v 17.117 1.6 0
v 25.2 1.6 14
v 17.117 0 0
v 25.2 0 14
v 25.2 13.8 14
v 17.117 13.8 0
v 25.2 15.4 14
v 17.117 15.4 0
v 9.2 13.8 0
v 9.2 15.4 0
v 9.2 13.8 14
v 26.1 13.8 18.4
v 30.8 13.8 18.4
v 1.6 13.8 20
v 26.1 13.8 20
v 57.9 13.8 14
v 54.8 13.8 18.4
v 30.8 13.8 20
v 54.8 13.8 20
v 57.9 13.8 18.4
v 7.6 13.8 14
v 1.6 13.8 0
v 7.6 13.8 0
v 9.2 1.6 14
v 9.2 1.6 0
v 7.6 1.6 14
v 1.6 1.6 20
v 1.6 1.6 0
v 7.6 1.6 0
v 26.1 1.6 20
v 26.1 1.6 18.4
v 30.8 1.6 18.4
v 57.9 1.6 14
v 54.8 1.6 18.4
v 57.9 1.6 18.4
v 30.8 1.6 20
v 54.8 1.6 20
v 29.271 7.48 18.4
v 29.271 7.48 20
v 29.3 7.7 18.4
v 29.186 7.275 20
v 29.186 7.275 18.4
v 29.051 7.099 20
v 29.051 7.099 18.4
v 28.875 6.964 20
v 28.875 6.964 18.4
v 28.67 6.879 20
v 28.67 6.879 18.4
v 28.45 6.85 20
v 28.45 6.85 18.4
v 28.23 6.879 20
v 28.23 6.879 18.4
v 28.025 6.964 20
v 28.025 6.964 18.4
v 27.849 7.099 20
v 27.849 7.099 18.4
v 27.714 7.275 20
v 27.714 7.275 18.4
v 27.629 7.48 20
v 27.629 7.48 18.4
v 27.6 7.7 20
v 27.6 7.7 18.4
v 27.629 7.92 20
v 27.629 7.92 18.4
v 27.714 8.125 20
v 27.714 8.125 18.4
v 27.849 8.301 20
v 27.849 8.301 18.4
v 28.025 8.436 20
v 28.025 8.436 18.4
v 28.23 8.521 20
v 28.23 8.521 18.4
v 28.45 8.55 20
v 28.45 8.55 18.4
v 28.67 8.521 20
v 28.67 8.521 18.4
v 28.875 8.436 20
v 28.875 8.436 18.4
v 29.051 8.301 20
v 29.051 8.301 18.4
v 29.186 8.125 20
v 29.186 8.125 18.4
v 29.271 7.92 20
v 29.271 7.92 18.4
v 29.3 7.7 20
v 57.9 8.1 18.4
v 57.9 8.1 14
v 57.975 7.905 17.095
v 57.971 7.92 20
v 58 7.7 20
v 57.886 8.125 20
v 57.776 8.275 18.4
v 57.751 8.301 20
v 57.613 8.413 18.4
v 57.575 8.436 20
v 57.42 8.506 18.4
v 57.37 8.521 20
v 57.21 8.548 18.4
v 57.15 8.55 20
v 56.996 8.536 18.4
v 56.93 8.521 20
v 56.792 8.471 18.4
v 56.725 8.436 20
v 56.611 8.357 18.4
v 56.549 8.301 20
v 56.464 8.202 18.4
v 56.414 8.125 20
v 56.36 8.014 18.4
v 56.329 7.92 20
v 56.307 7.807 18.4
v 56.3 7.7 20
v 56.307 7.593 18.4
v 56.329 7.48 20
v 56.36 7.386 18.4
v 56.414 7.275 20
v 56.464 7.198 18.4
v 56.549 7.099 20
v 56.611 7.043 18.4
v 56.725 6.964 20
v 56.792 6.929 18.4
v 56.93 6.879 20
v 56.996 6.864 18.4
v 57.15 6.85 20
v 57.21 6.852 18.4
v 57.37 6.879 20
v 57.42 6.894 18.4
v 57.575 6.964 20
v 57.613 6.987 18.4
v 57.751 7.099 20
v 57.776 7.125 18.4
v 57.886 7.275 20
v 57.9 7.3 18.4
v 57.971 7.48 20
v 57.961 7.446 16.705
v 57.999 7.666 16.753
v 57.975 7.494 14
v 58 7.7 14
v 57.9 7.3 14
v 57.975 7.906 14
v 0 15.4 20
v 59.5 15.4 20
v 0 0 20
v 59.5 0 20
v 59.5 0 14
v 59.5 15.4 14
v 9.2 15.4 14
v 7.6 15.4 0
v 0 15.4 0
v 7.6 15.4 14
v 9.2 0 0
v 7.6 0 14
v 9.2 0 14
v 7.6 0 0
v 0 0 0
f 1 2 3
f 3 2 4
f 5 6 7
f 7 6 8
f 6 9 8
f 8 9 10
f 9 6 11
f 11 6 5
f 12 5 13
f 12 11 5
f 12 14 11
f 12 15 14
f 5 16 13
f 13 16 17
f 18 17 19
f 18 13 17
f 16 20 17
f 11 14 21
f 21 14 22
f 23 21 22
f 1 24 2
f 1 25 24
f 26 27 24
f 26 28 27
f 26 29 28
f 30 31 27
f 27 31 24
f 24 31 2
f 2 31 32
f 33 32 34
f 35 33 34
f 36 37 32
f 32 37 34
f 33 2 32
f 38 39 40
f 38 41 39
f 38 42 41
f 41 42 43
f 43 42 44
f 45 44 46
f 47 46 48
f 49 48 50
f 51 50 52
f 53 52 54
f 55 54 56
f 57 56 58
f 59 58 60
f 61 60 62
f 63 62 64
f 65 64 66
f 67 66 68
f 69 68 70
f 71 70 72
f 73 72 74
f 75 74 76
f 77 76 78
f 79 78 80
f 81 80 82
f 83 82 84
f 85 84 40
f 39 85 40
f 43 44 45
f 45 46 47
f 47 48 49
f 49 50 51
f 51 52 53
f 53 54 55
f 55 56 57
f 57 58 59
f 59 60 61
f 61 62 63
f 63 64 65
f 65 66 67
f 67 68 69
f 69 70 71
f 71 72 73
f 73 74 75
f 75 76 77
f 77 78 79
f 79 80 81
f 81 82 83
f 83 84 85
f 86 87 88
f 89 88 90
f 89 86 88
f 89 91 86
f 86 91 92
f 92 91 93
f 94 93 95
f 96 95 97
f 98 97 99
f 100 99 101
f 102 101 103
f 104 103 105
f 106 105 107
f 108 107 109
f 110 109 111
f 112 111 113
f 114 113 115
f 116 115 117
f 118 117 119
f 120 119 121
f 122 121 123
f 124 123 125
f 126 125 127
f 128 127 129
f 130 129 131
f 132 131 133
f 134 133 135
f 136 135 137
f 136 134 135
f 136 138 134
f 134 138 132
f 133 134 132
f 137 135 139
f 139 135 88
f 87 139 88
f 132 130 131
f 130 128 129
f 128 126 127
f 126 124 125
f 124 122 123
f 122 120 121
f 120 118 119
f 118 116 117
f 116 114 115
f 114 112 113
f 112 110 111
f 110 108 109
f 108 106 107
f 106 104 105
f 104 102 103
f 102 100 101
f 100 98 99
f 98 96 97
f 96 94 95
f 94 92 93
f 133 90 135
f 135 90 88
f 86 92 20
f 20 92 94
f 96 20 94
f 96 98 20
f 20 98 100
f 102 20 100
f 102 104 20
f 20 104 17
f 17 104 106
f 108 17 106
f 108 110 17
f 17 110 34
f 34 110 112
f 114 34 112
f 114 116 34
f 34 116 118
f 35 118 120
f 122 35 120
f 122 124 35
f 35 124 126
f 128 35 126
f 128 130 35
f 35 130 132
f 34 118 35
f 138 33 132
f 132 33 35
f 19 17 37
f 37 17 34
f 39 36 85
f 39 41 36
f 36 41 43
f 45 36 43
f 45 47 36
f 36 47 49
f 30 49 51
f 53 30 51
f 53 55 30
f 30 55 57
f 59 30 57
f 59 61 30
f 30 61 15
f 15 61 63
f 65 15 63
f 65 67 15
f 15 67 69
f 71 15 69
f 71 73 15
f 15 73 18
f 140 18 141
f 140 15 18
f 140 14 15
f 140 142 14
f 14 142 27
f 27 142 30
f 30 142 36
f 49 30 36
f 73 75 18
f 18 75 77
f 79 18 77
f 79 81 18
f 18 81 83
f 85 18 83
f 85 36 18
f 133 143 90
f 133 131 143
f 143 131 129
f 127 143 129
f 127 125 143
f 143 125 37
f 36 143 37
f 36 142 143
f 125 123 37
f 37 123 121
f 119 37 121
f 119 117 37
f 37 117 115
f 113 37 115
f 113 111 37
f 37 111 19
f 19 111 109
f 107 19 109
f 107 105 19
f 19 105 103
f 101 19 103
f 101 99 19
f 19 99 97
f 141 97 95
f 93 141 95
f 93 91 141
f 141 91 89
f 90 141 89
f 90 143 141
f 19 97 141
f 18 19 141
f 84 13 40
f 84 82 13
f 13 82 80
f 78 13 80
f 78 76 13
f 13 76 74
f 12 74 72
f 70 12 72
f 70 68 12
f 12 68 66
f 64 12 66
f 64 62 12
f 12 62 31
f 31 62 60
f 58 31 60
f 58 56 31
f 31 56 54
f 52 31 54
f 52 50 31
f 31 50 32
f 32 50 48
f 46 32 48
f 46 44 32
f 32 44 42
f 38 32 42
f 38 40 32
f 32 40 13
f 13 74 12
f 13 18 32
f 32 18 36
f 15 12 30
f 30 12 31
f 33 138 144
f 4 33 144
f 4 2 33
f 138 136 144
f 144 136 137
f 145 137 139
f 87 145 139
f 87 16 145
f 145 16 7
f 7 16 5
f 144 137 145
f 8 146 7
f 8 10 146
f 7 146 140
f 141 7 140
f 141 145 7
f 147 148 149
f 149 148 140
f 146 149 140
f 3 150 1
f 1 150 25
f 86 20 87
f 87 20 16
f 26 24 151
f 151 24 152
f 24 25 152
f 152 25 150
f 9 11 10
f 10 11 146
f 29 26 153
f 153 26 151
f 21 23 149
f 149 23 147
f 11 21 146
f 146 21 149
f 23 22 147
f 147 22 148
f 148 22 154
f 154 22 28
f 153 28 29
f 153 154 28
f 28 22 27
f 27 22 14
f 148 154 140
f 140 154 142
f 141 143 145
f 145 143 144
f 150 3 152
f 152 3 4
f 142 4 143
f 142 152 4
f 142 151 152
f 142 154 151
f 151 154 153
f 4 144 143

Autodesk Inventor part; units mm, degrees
ref_plane "YZ Plane" through (0, 0, 0) normal (1, 0, 0) x (0, 1, 0)
ref_plane "XZ Plane" through (0, 0, 0) normal (0, 1, 0) x (-1, 0, 0)
ref_plane "XY Plane" through (0, 0, 0) normal (0, 0, 1) x (1, 0, 0)
sketch "Sketch1" plane through (0, 0, 0) normal (0, 0, 1) x (1, 0, 0)
  line L0 (0, 0) -> (59.5, 0)
  line L1 (59.5, 0) -> (59.5, 15.4)
  line L2 (59.5, 15.4) -> (0, 15.4)
  line L3 (0, 15.4) -> (0, 0)
  line L4 (1.6, 13.8) -> (57.9, 13.8)
  line L5 (57.9, 13.8) -> (57.9, 1.6)
  line L6 (57.9, 1.6) -> (1.6, 1.6)
  line L7 (1.6, 1.6) -> (1.6, 13.8)
  dimension "d0" = 59.5
  dimension "d1" = 15.4
  dimension "d2" = 1.6
extrude "Extrusion1" add sketch "Sketch1" along normal blind 20
sketch "Sketch2" plane through (0, 0, 0) normal (0, -1, 0) x (1, 0, 0)
  line L0 (1.6, 0) -> (57.9, 0) projected
  line L1 (7.6, 0) -> (9.2, 0)
  line L2 (9.2, 0) -> (9.2, 14)
  line L3 (9.2, 14) -> (7.6, 14)
  line L4 (7.6, 14) -> (7.6, 0)
  line L5 (0, 0) -> (0, 20) projected
  dimension "d5" = 1.6
  dimension "d6" = 14
  dimension "d7" = 7.6
extrude "Extrusion2" cut sketch "Sketch2" against normal up to surface (15.4 mm away)
sketch "Sketch3" plane through (0, 0, 20) normal (0, -1, 0) x (1, 0, 0)
  line L0 (9.2, -6) -> (9.2, -20) projected
  line L1 (9.2, -20) -> (59.5, -20) projected
  line L2 (59.5, -20) -> (59.5, 0) projected
  line L3 (0, 0) -> (59.5, 0) projected
  line L4 (0, -20) -> (0, 0) projected
  line L5 (0, -20) -> (7.6, -20) projected
  line L6 (7.6, -20) -> (7.6, -6) projected
  line L7 (7.6, -6) -> (9.2, -6) projected
  line L8 (57.9, -20) -> (9.2, -20) projected
  line L9 (25.2, -20) -> (59.5, -20)
  line L10 (59.5, -20) -> (59.5, -6)
  line L11 (59.5, -6) -> (25.2, -6)
  line L12 (25.2, -6) -> (25.2, -20)
  dimension "d10" = 14
  dimension "d11" = 16
extrude "Extrusion3" cut sketch "Sketch3" against normal up to surface (15.4 mm away) contours L12 L11 L2 L1
sketch "Sketch4" plane through (0, 0, 20) normal (0, -1, 0) x (1, 0, 0)
  line L0 (25.2, -6) -> (59.5, -6) projected
  line L1 (59.5, -6) -> (59.5, 0) projected
  line L2 (0, 0) -> (59.5, 0) projected
  line L3 (0, -20) -> (0, 0) projected
  line L4 (0, -20) -> (7.6, -20) projected
  line L5 (7.6, -20) -> (7.6, -6) projected
  line L6 (7.6, -6) -> (9.2, -6) projected
  line L7 (9.2, -6) -> (9.2, -20) projected
  line L8 (9.2, -20) -> (25.2, -20) projected
  line L9 (25.2, -20) -> (25.2, -6) projected
  line L10 (59.5, 0) -> (54.8, 0)
  line L11 (54.8, 0) -> (54.8, -1.6)
  line L12 (54.8, -1.6) -> (59.5, -1.6)
  line L13 (59.5, -1.6) -> (59.5, 0)
  line L14 (57.9, 0) -> (1.6, 0) projected
  line L15 (30.8, 0) -> (26.1, 0)
  line L16 (26.1, 0) -> (26.1, -1.6)
  line L17 (26.1, -1.6) -> (30.8, -1.6)
  line L18 (30.8, -1.6) -> (30.8, 0)
  dimension "d14" = 4.7
  dimension "d15" = 1.6
  dimension "d16" = 1.6
  dimension "d17" = 4.7
  dimension "d18" = 24
extrude "Extrusion4" add sketch "Sketch4" against normal up to next contours L12 L11 L2 L1 | L18 L17 L16 L2
sketch "Sketch6" plane through (0, 0, 20) normal (0, 0, 1) x (1, 0, 0)
  line L0 (0, 0) -> (59.5, 0) projected
  line L1 (59.5, 0) -> (59.5, 15.4) projected
  line L2 (59.5, 15.4) -> (0, 15.4) projected
  line L3 (0, 15.4) -> (0, 0) projected
  line L4 (26.1, 1.6) -> (26.1, 13.8) projected
  line L5 (26.1, 1.6) -> (1.6, 1.6) projected
  line L6 (1.6, 1.6) -> (1.6, 13.8) projected
  line L7 (1.6, 13.8) -> (26.1, 13.8) projected
  line L8 (54.8, 1.6) -> (30.8, 1.6) projected
  line L9 (30.8, 1.6) -> (30.8, 13.8) projected
  line L10 (30.8, 13.8) -> (54.8, 13.8) projected
  line L11 (54.8, 1.6) -> (54.8, 13.8) projected
  line L12 (26.1, 1.6) -> (30.8, 13.8)
  line L13 (30.8, 1.6) -> (26.1, 13.8)
  line L14 (54.8, 1.6) -> (59.5, 1.6)
  line L15 (59.5, 0) -> (59.5, 15.4) projected
  line L16 (54.8, 13.8) -> (59.5, 13.8)
  line L17 (54.8, 1.6) -> (59.5, 13.8)
  line L18 (54.8, 13.8) -> (59.5, 1.6)
  circle A0 centre (28.45, 7.7) radius 0.85
  circle A1 centre (57.15, 7.7) radius 0.85
  point P0 (0, 0)
  dimension "d24" = 1.7
  dimension "d25" = 1.7
extrude "Extrusion5" cut sketch "Sketch6" against normal up to next contours A1 L17 L18 | L18 L17 A1 | L17 L18 A1 | A1 L18 L17 | A0 L12 L13 | L13 L12 A0 | L12 L13 A0 | L12 A0 L13
sketch "Sketch7" plane through (0, 0, 20) normal (0, -1, 0) x (1, 0, 0)
  line L0 (59.5, -6) -> (59.5, 0) projected
  line L1 (0, 0) -> (59.5, 0) projected
  line L2 (0, -20) -> (0, 0) projected
  line L3 (0, -20) -> (7.6, -20) projected
  line L4 (7.6, -20) -> (7.6, -6) projected
  line L5 (7.6, -6) -> (9.2, -6) projected
  line L6 (9.2, -6) -> (9.2, -20) projected
  line L7 (9.2, -20) -> (25.2, -20) projected
  line L8 (25.2, -20) -> (25.2, -6) projected
  line L9 (25.2, -6) -> (59.5, -6) projected
  line L10 (25.2, -6) -> (17.1171, -20)
  line L11 (9.2, -20) -> (25.2, -20) projected
  line L12 (25.2, -6) -> (41.3658, -6) construction
  line L13 (17.1171, -20) -> (25.2, -20)
  line L14 (25.2, -20) -> (25.2, -6)
  dimension "d28" = 120
extrude "Extrusion6" cut sketch "Sketch7" against normal up to surface (15.4 mm away) contours L8 L7 L10
properties part number "CarCab"
